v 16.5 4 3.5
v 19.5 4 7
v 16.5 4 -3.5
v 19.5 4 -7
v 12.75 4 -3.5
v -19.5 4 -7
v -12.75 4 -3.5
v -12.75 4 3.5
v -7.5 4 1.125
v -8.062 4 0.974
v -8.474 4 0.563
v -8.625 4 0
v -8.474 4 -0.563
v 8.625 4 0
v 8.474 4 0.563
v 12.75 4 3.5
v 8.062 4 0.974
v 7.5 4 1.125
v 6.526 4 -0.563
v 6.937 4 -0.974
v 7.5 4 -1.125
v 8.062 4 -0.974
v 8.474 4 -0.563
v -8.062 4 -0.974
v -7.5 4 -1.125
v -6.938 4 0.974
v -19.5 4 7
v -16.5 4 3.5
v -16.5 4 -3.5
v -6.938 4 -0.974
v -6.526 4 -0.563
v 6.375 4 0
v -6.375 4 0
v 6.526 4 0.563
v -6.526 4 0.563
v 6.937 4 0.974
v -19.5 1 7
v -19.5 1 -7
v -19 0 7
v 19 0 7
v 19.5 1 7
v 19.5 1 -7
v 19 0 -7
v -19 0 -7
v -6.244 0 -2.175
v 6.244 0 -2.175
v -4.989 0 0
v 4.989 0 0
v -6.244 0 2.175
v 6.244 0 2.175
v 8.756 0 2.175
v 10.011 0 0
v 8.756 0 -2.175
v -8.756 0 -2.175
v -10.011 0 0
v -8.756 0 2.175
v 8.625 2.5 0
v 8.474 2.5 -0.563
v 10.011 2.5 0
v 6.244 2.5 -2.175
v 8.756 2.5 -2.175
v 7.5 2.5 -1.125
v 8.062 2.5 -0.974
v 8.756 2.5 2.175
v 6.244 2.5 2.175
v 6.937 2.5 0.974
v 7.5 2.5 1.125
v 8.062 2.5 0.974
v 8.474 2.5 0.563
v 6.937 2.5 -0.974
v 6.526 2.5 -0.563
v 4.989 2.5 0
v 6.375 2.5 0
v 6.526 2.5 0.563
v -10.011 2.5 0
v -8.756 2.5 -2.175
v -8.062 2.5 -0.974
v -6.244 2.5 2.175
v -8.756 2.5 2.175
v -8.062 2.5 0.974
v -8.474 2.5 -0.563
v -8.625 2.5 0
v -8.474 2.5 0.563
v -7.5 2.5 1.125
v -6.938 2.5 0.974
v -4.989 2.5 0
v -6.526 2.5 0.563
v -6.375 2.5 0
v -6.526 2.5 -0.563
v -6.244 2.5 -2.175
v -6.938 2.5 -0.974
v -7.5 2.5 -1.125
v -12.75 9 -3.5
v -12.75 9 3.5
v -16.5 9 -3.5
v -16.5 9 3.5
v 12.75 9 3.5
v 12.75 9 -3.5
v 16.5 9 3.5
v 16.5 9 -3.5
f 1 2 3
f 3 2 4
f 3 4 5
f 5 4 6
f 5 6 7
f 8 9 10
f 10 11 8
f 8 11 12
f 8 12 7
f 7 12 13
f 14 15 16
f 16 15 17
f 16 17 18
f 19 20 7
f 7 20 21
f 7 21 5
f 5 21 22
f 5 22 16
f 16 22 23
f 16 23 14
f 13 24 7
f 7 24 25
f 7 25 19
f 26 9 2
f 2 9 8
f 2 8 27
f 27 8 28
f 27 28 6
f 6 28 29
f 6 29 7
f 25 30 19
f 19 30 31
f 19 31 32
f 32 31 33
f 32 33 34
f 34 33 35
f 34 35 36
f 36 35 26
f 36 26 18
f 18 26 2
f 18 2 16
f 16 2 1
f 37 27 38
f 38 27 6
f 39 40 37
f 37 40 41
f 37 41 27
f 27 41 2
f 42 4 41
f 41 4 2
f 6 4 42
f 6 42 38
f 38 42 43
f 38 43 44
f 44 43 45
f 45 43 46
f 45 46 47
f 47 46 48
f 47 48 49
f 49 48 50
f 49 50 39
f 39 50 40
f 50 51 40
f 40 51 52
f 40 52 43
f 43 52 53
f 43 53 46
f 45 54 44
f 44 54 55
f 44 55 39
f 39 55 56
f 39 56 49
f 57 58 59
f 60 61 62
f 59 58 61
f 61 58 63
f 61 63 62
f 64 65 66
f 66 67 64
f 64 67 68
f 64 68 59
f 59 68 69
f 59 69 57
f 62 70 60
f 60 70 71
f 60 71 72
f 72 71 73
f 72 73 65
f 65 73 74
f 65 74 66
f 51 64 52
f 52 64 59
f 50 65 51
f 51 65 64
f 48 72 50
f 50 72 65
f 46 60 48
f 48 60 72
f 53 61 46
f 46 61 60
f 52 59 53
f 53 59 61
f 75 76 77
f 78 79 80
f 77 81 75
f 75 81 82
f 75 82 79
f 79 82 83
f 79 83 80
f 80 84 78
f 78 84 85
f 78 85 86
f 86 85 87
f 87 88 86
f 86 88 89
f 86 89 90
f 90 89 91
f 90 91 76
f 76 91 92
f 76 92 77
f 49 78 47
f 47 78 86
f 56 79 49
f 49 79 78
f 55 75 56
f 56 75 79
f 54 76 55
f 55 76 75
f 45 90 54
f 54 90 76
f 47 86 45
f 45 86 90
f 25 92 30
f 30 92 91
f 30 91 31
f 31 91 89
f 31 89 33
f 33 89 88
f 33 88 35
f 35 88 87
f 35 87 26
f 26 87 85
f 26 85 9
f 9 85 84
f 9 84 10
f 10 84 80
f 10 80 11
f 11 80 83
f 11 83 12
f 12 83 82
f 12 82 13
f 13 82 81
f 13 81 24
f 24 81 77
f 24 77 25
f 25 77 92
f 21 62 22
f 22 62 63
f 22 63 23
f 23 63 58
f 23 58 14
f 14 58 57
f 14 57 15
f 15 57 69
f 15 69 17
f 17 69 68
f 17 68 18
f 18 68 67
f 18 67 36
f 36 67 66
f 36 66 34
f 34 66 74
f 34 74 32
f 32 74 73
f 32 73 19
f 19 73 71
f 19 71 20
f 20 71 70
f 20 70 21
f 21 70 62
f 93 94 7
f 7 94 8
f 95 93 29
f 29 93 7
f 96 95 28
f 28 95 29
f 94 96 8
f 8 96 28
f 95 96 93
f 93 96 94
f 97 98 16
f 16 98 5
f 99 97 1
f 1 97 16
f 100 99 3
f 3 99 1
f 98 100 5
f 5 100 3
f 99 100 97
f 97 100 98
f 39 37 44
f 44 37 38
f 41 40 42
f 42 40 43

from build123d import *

# Parameters (mm, degrees)
SKETCH_1_W          = 39
SKETCH_1_H          = 14
EXTRUDE_1_DEPTH     = 4
CUT_EXTRUDE_1_DEPTH = 2.5
SKETCH_3_R          = 1.125
CUT_EXTRUDE_2_DEPTH = 4
SKETCH_4_W          = 3.75
SKETCH_4_H          = 7
EXTRUDE_2_DEPTH     = 5
CUT_EXTRUDE_4_DEPTH = 14


with BuildPart() as part:
    # 스케치1 → 보스-돌출1 (new body)
    with BuildSketch(Plane(origin=(0, 0, 0), x_dir=(1, 0, 0), z_dir=(0, 1, 0))):
        Rectangle(SKETCH_1_W, SKETCH_1_H)
    extrude(amount=EXTRUDE_1_DEPTH)

    # 스케치2 → 컷-돌출1 (cut)
    with BuildSketch(Plane.XZ):
        Polygon((10.011473671, 0), (8.755736835, 2.175), (6.244263165, 2.175), (4.988526329, 0), (6.244263165, -2.175), (8.755736835, -2.175), align=None)
        Polygon((-4.988526329, 0), (-6.244263165, 2.175), (-8.755736835, 2.175), (-10.011473671, 0), (-8.755736835, -2.175), (-6.244263165, -2.175), align=None)
    extrude(amount=-CUT_EXTRUDE_1_DEPTH, mode=Mode.SUBTRACT)

    # 스케치3 → 컷-돌출2 (cut)
    with BuildSketch(Plane.XZ):
        with Locations((-7.5, 0)):
            Circle(SKETCH_3_R)
        with Locations((7.5, 0)):
            Circle(SKETCH_3_R)
    extrude(amount=-CUT_EXTRUDE_2_DEPTH, mode=Mode.SUBTRACT)

    # 스케치4 → 보스-돌출2 (add)
    with BuildSketch(Plane(origin=(0, 4, 0), x_dir=(1, 0, 0), z_dir=(0, 1, 0))):
        with Locations((-14.625, 0)):
            Rectangle(SKETCH_4_W, SKETCH_4_H)
        with Locations((14.625, 0)):
            Rectangle(SKETCH_4_W, SKETCH_4_H)
    extrude(amount=EXTRUDE_2_DEPTH)

    # 스케치5 → 컷-돌출4 (cut)
    with BuildSketch(Plane.XY.offset(7)):
        Polygon((-19.5, 1), (-19, 0), (-19.5, 0), align=None)
        Polygon((19.5, 1), (19.5, 0), (19, 0), align=None)
    extrude(amount=-CUT_EXTRUDE_4_DEPTH, mode=Mode.SUBTRACT)


solid = part.part
